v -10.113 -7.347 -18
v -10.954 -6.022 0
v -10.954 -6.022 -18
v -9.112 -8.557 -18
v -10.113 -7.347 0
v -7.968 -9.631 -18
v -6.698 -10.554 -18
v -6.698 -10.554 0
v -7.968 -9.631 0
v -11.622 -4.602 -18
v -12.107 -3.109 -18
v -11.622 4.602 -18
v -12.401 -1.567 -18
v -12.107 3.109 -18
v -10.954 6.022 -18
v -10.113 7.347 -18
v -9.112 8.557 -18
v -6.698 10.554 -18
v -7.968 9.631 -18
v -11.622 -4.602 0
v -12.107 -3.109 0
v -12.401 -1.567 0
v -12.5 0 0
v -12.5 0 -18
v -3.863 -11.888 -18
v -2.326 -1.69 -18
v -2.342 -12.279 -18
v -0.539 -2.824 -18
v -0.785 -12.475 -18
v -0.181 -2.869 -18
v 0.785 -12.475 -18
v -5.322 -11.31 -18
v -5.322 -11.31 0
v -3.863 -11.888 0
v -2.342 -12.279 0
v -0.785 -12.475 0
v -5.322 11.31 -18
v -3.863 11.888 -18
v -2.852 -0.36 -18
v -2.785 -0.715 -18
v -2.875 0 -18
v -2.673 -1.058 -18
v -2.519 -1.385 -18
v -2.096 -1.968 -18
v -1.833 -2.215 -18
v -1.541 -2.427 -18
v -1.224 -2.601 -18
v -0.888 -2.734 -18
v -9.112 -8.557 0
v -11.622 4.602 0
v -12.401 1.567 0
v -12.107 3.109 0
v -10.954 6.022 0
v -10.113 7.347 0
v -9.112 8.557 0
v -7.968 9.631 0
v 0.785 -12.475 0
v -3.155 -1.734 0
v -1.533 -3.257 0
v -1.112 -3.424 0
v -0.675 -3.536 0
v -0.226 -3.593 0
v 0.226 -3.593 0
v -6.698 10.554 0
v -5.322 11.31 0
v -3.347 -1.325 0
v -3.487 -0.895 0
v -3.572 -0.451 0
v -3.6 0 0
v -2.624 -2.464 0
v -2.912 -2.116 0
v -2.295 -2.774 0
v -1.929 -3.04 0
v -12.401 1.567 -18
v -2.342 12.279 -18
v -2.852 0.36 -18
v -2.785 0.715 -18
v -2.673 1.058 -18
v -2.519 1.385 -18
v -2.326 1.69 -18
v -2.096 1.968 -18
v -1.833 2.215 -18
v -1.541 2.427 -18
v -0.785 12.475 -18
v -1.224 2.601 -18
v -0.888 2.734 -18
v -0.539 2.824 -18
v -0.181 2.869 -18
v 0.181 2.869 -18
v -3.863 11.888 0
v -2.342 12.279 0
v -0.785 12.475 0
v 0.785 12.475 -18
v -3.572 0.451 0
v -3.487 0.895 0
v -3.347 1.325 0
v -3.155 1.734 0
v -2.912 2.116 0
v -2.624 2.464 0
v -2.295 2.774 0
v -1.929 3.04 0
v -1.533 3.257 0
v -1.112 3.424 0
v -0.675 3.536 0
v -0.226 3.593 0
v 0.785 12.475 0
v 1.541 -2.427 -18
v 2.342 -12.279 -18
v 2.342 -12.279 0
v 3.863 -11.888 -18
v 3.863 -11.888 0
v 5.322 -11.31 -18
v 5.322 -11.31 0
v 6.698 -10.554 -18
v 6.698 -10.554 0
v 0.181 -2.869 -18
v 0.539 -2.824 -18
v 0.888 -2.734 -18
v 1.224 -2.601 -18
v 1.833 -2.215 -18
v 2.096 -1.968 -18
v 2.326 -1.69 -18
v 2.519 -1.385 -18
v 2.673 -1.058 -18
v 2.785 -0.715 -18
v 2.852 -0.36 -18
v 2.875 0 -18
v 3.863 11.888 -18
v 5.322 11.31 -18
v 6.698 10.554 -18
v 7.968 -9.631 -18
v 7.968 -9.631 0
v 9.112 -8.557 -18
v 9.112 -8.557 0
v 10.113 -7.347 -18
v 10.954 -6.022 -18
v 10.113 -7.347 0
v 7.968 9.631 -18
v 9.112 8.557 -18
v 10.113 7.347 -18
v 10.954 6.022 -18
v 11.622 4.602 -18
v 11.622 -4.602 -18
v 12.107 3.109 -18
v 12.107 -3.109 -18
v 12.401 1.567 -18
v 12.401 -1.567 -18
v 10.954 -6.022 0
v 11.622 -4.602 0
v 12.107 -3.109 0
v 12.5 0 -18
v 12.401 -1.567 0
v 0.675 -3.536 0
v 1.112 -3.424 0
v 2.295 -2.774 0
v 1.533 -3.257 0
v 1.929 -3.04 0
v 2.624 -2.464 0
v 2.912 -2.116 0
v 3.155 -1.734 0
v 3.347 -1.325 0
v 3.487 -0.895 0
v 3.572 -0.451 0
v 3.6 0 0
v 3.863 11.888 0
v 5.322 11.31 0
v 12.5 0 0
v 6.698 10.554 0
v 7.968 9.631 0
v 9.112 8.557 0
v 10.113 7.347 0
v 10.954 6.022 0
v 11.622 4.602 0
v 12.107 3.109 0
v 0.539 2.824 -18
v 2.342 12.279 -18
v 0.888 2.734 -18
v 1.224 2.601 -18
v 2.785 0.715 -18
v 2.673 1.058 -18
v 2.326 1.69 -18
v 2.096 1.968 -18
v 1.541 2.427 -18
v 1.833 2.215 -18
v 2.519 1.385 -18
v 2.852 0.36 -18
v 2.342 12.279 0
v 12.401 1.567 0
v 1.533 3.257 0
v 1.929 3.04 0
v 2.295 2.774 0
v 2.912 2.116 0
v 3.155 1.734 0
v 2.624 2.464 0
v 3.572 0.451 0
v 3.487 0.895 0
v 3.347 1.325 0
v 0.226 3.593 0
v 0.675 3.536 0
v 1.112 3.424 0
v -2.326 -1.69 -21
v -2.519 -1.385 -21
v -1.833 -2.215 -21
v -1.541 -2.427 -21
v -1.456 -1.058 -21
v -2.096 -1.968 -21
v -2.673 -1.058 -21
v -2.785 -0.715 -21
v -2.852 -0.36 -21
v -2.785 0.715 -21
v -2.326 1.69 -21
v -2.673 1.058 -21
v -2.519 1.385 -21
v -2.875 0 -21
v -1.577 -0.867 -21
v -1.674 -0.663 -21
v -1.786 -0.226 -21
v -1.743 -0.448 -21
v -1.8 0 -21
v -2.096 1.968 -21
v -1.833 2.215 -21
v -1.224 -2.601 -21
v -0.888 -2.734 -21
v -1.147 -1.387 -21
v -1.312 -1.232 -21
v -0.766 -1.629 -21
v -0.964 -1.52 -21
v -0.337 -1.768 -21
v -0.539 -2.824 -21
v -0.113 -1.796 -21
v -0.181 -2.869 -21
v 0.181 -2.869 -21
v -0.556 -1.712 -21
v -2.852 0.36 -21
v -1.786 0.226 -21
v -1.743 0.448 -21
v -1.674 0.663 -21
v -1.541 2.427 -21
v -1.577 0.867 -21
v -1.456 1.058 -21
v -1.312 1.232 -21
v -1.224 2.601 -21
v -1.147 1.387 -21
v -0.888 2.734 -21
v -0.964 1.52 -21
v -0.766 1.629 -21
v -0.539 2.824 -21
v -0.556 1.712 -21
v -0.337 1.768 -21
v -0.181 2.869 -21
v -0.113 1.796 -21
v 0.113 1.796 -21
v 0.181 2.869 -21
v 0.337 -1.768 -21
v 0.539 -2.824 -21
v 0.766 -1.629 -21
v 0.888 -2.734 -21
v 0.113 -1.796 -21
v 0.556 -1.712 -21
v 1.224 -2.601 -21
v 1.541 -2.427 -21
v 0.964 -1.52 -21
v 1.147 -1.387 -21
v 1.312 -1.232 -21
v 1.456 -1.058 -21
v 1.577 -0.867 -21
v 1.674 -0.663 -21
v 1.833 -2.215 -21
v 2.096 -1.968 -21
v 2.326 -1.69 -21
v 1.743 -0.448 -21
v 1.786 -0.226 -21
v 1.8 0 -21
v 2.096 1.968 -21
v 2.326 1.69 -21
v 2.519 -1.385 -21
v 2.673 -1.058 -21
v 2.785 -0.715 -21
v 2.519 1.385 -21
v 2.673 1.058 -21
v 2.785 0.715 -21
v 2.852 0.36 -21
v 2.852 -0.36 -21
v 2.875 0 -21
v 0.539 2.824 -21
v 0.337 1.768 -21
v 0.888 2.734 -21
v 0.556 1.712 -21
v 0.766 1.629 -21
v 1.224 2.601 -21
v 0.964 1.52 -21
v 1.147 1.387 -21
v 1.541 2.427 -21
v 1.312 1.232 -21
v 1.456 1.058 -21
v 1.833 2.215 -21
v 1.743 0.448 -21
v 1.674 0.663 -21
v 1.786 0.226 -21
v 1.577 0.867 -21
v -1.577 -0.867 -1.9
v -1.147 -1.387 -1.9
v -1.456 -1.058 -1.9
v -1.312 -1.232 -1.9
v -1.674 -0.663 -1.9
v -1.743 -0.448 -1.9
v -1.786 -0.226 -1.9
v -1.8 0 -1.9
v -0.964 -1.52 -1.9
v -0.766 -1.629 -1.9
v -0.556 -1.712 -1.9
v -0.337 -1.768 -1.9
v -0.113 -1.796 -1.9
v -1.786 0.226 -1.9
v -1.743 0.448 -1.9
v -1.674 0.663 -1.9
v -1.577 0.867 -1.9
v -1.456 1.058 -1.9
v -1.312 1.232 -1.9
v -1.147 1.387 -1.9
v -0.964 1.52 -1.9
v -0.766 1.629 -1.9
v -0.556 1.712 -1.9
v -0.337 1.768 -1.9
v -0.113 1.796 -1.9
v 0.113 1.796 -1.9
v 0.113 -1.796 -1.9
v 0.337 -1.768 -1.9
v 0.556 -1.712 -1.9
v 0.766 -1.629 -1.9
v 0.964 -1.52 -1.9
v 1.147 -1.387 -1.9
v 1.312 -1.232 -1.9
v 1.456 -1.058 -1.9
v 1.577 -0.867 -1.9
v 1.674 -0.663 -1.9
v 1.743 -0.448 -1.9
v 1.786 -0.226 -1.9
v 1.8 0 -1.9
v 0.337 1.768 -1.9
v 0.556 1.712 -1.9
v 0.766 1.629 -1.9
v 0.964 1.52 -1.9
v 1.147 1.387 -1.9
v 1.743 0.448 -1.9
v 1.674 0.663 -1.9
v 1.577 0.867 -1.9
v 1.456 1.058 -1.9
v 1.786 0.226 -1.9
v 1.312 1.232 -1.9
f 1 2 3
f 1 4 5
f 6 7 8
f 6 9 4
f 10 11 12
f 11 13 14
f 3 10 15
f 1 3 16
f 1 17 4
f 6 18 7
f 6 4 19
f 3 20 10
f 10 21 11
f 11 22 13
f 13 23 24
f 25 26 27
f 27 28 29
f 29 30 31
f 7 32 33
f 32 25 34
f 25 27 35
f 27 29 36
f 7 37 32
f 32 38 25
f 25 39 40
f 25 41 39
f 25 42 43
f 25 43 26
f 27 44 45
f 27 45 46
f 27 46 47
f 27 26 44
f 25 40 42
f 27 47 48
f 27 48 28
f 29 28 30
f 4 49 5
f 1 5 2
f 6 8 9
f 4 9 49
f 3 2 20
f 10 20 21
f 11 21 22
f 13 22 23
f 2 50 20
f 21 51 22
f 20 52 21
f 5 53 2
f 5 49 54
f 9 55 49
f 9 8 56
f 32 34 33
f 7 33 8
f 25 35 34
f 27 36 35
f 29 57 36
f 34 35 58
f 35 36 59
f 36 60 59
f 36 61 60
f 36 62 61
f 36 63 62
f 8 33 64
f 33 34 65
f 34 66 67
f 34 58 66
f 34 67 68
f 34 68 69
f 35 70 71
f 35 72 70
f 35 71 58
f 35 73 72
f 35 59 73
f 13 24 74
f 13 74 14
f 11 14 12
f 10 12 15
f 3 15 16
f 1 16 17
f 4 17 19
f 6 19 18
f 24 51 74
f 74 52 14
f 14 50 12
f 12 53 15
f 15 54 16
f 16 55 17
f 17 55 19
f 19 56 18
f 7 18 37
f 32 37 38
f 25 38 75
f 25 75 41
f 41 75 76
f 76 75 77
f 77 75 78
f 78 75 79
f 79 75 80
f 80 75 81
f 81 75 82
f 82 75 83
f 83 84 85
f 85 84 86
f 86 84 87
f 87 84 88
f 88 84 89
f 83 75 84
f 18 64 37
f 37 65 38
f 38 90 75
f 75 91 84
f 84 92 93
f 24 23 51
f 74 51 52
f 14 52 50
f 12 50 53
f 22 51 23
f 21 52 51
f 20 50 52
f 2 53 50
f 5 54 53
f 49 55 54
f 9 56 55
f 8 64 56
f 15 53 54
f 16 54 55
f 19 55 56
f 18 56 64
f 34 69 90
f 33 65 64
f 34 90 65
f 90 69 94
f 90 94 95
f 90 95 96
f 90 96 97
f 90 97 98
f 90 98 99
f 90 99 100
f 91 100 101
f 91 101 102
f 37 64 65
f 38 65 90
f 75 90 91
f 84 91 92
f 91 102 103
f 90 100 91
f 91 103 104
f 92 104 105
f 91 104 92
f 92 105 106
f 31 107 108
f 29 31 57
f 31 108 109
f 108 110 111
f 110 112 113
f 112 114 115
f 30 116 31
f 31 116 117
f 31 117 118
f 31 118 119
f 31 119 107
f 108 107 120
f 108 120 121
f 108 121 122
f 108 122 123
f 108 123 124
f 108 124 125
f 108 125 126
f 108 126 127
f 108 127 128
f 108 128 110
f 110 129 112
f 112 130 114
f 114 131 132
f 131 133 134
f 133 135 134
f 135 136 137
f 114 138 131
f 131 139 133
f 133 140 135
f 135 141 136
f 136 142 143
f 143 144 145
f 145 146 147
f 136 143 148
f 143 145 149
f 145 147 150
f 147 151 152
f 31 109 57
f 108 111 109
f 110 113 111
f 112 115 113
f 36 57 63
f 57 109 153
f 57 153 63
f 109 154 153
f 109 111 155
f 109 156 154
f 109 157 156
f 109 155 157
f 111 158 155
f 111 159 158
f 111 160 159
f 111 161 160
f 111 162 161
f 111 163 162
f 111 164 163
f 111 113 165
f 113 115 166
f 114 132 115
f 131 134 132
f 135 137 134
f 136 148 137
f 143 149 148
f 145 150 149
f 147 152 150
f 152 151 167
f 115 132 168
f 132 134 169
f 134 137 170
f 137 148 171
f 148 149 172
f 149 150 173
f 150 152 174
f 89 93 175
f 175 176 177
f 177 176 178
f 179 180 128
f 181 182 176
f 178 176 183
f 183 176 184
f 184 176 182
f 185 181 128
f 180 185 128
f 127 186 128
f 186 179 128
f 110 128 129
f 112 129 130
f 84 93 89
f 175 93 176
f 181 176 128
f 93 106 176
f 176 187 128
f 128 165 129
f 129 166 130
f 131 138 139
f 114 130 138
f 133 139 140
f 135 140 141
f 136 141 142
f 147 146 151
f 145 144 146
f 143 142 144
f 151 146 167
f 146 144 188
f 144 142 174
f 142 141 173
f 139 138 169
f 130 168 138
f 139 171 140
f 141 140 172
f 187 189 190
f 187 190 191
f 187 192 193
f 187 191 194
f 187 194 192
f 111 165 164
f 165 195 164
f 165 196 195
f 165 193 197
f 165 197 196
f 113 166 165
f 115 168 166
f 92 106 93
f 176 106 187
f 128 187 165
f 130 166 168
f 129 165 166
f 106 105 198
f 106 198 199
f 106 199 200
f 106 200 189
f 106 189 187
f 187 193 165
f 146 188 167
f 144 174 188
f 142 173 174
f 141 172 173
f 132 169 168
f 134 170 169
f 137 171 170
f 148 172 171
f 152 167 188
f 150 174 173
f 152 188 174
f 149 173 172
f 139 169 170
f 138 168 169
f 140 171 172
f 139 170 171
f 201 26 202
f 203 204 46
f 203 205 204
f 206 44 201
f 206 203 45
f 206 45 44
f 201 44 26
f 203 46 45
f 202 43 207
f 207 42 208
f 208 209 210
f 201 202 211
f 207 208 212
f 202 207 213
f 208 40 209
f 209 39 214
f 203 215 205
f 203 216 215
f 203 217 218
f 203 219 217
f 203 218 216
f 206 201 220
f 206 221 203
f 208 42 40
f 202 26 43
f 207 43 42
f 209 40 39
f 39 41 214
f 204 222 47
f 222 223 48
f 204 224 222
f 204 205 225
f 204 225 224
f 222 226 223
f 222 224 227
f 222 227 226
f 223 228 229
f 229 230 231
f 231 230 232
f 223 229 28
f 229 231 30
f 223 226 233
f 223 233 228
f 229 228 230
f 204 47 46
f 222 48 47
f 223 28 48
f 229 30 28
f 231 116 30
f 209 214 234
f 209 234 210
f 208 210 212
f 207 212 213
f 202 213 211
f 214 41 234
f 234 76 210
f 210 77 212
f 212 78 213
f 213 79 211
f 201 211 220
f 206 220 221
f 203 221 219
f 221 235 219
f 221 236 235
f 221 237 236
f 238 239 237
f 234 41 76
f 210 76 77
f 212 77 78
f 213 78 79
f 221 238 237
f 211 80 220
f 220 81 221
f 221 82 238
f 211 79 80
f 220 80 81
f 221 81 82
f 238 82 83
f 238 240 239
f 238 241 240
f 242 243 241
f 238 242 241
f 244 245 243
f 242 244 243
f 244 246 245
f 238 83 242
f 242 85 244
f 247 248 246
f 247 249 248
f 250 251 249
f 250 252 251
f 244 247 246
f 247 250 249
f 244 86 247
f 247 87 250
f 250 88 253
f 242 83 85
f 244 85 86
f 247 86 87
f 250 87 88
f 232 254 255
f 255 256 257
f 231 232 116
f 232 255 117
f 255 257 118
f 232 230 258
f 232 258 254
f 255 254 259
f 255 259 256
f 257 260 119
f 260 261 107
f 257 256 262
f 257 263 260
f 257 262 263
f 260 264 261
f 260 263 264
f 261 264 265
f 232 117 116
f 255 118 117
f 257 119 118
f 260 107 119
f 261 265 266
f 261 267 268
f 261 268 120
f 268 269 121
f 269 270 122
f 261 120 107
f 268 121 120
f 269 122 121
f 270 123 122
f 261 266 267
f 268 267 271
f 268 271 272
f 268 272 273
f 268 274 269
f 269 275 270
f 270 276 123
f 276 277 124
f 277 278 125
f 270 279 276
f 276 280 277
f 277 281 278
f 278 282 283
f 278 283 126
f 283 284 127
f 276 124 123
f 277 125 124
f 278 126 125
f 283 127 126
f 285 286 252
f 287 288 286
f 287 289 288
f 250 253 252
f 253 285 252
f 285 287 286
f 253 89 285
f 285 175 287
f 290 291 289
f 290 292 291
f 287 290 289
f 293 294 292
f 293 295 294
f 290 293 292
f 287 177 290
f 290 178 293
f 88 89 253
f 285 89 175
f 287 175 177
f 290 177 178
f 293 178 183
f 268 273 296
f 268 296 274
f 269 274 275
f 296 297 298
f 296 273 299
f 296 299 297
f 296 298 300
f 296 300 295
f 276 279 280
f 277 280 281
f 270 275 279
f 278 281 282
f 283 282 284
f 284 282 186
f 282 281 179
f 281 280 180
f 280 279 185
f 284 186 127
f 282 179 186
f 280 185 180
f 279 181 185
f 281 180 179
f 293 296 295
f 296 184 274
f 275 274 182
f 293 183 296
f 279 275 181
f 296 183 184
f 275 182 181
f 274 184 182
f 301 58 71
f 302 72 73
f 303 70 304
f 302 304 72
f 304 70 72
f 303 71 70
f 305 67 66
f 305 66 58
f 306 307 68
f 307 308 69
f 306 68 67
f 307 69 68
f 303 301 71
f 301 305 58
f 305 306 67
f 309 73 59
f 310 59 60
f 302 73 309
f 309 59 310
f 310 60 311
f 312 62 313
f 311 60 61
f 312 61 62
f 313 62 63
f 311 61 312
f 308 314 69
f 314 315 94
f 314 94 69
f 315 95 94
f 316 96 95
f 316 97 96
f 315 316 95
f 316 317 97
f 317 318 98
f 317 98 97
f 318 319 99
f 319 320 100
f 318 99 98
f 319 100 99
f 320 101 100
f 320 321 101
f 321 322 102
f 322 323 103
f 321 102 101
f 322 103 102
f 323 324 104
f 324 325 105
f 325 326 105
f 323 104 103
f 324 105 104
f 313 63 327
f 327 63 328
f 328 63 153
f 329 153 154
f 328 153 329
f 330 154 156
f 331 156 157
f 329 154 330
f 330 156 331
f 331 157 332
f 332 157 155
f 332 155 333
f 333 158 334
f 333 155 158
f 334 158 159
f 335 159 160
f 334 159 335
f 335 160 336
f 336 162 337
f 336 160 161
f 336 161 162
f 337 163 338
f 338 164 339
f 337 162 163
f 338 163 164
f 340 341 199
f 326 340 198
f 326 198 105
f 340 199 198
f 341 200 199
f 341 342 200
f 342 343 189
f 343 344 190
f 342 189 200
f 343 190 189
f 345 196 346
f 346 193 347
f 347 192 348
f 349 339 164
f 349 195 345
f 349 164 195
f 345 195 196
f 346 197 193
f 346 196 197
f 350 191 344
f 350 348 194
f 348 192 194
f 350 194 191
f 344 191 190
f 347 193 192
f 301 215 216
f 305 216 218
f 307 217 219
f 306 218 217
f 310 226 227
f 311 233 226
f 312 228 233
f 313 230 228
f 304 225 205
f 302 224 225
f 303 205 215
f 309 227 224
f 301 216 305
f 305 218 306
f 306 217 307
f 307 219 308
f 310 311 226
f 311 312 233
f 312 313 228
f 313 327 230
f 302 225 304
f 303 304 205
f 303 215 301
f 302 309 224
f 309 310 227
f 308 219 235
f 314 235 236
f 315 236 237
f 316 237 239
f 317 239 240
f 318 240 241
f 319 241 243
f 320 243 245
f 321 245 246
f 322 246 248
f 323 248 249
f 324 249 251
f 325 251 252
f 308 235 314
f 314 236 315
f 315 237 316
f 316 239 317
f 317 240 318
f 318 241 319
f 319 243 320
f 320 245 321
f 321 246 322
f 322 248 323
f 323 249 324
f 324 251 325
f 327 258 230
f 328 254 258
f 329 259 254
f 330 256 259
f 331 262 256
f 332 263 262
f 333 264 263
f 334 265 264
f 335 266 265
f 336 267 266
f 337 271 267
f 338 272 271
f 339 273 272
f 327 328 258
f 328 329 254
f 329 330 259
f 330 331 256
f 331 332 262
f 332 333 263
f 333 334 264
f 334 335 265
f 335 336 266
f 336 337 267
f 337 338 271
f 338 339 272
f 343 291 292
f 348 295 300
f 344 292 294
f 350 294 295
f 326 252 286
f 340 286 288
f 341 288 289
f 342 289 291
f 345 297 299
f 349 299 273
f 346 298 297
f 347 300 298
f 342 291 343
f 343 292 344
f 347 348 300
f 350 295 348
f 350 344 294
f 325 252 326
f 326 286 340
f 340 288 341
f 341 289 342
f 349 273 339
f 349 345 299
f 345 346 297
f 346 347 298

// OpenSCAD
$fn = 50;


difference() {
	union() {
		translate(v = [0, 0, -18.0000000000]) {
			cylinder(h = 18, r = 12.5000000000);
		}
		#translate(v = [0, 0, -21.0000000000]) {
			cylinder(h = 21, r = 2.8750000000);
		}
	}
	union() {
		translate(v = [0, 0, 0]) {
			rotate(a = [0, 0, 0]) {
				difference() {
					union() {
						translate(v = [0, 0, -21.0000000000]) {
							cylinder(h = 21, r = 1.5000000000);
						}
						translate(v = [0, 0, -1.9000000000]) {
							cylinder(h = 1.9000000000, r1 = 1.8000000000, r2 = 3.6000000000);
						}
						translate(v = [0, 0, -21.0000000000]) {
							cylinder(h = 21, r = 1.8000000000);
						}
						translate(v = [0, 0, -21.0000000000]) {
							cylinder(h = 21, r = 1.5000000000);
						}
					}
					union();
				}
			}
		}
	}
}
